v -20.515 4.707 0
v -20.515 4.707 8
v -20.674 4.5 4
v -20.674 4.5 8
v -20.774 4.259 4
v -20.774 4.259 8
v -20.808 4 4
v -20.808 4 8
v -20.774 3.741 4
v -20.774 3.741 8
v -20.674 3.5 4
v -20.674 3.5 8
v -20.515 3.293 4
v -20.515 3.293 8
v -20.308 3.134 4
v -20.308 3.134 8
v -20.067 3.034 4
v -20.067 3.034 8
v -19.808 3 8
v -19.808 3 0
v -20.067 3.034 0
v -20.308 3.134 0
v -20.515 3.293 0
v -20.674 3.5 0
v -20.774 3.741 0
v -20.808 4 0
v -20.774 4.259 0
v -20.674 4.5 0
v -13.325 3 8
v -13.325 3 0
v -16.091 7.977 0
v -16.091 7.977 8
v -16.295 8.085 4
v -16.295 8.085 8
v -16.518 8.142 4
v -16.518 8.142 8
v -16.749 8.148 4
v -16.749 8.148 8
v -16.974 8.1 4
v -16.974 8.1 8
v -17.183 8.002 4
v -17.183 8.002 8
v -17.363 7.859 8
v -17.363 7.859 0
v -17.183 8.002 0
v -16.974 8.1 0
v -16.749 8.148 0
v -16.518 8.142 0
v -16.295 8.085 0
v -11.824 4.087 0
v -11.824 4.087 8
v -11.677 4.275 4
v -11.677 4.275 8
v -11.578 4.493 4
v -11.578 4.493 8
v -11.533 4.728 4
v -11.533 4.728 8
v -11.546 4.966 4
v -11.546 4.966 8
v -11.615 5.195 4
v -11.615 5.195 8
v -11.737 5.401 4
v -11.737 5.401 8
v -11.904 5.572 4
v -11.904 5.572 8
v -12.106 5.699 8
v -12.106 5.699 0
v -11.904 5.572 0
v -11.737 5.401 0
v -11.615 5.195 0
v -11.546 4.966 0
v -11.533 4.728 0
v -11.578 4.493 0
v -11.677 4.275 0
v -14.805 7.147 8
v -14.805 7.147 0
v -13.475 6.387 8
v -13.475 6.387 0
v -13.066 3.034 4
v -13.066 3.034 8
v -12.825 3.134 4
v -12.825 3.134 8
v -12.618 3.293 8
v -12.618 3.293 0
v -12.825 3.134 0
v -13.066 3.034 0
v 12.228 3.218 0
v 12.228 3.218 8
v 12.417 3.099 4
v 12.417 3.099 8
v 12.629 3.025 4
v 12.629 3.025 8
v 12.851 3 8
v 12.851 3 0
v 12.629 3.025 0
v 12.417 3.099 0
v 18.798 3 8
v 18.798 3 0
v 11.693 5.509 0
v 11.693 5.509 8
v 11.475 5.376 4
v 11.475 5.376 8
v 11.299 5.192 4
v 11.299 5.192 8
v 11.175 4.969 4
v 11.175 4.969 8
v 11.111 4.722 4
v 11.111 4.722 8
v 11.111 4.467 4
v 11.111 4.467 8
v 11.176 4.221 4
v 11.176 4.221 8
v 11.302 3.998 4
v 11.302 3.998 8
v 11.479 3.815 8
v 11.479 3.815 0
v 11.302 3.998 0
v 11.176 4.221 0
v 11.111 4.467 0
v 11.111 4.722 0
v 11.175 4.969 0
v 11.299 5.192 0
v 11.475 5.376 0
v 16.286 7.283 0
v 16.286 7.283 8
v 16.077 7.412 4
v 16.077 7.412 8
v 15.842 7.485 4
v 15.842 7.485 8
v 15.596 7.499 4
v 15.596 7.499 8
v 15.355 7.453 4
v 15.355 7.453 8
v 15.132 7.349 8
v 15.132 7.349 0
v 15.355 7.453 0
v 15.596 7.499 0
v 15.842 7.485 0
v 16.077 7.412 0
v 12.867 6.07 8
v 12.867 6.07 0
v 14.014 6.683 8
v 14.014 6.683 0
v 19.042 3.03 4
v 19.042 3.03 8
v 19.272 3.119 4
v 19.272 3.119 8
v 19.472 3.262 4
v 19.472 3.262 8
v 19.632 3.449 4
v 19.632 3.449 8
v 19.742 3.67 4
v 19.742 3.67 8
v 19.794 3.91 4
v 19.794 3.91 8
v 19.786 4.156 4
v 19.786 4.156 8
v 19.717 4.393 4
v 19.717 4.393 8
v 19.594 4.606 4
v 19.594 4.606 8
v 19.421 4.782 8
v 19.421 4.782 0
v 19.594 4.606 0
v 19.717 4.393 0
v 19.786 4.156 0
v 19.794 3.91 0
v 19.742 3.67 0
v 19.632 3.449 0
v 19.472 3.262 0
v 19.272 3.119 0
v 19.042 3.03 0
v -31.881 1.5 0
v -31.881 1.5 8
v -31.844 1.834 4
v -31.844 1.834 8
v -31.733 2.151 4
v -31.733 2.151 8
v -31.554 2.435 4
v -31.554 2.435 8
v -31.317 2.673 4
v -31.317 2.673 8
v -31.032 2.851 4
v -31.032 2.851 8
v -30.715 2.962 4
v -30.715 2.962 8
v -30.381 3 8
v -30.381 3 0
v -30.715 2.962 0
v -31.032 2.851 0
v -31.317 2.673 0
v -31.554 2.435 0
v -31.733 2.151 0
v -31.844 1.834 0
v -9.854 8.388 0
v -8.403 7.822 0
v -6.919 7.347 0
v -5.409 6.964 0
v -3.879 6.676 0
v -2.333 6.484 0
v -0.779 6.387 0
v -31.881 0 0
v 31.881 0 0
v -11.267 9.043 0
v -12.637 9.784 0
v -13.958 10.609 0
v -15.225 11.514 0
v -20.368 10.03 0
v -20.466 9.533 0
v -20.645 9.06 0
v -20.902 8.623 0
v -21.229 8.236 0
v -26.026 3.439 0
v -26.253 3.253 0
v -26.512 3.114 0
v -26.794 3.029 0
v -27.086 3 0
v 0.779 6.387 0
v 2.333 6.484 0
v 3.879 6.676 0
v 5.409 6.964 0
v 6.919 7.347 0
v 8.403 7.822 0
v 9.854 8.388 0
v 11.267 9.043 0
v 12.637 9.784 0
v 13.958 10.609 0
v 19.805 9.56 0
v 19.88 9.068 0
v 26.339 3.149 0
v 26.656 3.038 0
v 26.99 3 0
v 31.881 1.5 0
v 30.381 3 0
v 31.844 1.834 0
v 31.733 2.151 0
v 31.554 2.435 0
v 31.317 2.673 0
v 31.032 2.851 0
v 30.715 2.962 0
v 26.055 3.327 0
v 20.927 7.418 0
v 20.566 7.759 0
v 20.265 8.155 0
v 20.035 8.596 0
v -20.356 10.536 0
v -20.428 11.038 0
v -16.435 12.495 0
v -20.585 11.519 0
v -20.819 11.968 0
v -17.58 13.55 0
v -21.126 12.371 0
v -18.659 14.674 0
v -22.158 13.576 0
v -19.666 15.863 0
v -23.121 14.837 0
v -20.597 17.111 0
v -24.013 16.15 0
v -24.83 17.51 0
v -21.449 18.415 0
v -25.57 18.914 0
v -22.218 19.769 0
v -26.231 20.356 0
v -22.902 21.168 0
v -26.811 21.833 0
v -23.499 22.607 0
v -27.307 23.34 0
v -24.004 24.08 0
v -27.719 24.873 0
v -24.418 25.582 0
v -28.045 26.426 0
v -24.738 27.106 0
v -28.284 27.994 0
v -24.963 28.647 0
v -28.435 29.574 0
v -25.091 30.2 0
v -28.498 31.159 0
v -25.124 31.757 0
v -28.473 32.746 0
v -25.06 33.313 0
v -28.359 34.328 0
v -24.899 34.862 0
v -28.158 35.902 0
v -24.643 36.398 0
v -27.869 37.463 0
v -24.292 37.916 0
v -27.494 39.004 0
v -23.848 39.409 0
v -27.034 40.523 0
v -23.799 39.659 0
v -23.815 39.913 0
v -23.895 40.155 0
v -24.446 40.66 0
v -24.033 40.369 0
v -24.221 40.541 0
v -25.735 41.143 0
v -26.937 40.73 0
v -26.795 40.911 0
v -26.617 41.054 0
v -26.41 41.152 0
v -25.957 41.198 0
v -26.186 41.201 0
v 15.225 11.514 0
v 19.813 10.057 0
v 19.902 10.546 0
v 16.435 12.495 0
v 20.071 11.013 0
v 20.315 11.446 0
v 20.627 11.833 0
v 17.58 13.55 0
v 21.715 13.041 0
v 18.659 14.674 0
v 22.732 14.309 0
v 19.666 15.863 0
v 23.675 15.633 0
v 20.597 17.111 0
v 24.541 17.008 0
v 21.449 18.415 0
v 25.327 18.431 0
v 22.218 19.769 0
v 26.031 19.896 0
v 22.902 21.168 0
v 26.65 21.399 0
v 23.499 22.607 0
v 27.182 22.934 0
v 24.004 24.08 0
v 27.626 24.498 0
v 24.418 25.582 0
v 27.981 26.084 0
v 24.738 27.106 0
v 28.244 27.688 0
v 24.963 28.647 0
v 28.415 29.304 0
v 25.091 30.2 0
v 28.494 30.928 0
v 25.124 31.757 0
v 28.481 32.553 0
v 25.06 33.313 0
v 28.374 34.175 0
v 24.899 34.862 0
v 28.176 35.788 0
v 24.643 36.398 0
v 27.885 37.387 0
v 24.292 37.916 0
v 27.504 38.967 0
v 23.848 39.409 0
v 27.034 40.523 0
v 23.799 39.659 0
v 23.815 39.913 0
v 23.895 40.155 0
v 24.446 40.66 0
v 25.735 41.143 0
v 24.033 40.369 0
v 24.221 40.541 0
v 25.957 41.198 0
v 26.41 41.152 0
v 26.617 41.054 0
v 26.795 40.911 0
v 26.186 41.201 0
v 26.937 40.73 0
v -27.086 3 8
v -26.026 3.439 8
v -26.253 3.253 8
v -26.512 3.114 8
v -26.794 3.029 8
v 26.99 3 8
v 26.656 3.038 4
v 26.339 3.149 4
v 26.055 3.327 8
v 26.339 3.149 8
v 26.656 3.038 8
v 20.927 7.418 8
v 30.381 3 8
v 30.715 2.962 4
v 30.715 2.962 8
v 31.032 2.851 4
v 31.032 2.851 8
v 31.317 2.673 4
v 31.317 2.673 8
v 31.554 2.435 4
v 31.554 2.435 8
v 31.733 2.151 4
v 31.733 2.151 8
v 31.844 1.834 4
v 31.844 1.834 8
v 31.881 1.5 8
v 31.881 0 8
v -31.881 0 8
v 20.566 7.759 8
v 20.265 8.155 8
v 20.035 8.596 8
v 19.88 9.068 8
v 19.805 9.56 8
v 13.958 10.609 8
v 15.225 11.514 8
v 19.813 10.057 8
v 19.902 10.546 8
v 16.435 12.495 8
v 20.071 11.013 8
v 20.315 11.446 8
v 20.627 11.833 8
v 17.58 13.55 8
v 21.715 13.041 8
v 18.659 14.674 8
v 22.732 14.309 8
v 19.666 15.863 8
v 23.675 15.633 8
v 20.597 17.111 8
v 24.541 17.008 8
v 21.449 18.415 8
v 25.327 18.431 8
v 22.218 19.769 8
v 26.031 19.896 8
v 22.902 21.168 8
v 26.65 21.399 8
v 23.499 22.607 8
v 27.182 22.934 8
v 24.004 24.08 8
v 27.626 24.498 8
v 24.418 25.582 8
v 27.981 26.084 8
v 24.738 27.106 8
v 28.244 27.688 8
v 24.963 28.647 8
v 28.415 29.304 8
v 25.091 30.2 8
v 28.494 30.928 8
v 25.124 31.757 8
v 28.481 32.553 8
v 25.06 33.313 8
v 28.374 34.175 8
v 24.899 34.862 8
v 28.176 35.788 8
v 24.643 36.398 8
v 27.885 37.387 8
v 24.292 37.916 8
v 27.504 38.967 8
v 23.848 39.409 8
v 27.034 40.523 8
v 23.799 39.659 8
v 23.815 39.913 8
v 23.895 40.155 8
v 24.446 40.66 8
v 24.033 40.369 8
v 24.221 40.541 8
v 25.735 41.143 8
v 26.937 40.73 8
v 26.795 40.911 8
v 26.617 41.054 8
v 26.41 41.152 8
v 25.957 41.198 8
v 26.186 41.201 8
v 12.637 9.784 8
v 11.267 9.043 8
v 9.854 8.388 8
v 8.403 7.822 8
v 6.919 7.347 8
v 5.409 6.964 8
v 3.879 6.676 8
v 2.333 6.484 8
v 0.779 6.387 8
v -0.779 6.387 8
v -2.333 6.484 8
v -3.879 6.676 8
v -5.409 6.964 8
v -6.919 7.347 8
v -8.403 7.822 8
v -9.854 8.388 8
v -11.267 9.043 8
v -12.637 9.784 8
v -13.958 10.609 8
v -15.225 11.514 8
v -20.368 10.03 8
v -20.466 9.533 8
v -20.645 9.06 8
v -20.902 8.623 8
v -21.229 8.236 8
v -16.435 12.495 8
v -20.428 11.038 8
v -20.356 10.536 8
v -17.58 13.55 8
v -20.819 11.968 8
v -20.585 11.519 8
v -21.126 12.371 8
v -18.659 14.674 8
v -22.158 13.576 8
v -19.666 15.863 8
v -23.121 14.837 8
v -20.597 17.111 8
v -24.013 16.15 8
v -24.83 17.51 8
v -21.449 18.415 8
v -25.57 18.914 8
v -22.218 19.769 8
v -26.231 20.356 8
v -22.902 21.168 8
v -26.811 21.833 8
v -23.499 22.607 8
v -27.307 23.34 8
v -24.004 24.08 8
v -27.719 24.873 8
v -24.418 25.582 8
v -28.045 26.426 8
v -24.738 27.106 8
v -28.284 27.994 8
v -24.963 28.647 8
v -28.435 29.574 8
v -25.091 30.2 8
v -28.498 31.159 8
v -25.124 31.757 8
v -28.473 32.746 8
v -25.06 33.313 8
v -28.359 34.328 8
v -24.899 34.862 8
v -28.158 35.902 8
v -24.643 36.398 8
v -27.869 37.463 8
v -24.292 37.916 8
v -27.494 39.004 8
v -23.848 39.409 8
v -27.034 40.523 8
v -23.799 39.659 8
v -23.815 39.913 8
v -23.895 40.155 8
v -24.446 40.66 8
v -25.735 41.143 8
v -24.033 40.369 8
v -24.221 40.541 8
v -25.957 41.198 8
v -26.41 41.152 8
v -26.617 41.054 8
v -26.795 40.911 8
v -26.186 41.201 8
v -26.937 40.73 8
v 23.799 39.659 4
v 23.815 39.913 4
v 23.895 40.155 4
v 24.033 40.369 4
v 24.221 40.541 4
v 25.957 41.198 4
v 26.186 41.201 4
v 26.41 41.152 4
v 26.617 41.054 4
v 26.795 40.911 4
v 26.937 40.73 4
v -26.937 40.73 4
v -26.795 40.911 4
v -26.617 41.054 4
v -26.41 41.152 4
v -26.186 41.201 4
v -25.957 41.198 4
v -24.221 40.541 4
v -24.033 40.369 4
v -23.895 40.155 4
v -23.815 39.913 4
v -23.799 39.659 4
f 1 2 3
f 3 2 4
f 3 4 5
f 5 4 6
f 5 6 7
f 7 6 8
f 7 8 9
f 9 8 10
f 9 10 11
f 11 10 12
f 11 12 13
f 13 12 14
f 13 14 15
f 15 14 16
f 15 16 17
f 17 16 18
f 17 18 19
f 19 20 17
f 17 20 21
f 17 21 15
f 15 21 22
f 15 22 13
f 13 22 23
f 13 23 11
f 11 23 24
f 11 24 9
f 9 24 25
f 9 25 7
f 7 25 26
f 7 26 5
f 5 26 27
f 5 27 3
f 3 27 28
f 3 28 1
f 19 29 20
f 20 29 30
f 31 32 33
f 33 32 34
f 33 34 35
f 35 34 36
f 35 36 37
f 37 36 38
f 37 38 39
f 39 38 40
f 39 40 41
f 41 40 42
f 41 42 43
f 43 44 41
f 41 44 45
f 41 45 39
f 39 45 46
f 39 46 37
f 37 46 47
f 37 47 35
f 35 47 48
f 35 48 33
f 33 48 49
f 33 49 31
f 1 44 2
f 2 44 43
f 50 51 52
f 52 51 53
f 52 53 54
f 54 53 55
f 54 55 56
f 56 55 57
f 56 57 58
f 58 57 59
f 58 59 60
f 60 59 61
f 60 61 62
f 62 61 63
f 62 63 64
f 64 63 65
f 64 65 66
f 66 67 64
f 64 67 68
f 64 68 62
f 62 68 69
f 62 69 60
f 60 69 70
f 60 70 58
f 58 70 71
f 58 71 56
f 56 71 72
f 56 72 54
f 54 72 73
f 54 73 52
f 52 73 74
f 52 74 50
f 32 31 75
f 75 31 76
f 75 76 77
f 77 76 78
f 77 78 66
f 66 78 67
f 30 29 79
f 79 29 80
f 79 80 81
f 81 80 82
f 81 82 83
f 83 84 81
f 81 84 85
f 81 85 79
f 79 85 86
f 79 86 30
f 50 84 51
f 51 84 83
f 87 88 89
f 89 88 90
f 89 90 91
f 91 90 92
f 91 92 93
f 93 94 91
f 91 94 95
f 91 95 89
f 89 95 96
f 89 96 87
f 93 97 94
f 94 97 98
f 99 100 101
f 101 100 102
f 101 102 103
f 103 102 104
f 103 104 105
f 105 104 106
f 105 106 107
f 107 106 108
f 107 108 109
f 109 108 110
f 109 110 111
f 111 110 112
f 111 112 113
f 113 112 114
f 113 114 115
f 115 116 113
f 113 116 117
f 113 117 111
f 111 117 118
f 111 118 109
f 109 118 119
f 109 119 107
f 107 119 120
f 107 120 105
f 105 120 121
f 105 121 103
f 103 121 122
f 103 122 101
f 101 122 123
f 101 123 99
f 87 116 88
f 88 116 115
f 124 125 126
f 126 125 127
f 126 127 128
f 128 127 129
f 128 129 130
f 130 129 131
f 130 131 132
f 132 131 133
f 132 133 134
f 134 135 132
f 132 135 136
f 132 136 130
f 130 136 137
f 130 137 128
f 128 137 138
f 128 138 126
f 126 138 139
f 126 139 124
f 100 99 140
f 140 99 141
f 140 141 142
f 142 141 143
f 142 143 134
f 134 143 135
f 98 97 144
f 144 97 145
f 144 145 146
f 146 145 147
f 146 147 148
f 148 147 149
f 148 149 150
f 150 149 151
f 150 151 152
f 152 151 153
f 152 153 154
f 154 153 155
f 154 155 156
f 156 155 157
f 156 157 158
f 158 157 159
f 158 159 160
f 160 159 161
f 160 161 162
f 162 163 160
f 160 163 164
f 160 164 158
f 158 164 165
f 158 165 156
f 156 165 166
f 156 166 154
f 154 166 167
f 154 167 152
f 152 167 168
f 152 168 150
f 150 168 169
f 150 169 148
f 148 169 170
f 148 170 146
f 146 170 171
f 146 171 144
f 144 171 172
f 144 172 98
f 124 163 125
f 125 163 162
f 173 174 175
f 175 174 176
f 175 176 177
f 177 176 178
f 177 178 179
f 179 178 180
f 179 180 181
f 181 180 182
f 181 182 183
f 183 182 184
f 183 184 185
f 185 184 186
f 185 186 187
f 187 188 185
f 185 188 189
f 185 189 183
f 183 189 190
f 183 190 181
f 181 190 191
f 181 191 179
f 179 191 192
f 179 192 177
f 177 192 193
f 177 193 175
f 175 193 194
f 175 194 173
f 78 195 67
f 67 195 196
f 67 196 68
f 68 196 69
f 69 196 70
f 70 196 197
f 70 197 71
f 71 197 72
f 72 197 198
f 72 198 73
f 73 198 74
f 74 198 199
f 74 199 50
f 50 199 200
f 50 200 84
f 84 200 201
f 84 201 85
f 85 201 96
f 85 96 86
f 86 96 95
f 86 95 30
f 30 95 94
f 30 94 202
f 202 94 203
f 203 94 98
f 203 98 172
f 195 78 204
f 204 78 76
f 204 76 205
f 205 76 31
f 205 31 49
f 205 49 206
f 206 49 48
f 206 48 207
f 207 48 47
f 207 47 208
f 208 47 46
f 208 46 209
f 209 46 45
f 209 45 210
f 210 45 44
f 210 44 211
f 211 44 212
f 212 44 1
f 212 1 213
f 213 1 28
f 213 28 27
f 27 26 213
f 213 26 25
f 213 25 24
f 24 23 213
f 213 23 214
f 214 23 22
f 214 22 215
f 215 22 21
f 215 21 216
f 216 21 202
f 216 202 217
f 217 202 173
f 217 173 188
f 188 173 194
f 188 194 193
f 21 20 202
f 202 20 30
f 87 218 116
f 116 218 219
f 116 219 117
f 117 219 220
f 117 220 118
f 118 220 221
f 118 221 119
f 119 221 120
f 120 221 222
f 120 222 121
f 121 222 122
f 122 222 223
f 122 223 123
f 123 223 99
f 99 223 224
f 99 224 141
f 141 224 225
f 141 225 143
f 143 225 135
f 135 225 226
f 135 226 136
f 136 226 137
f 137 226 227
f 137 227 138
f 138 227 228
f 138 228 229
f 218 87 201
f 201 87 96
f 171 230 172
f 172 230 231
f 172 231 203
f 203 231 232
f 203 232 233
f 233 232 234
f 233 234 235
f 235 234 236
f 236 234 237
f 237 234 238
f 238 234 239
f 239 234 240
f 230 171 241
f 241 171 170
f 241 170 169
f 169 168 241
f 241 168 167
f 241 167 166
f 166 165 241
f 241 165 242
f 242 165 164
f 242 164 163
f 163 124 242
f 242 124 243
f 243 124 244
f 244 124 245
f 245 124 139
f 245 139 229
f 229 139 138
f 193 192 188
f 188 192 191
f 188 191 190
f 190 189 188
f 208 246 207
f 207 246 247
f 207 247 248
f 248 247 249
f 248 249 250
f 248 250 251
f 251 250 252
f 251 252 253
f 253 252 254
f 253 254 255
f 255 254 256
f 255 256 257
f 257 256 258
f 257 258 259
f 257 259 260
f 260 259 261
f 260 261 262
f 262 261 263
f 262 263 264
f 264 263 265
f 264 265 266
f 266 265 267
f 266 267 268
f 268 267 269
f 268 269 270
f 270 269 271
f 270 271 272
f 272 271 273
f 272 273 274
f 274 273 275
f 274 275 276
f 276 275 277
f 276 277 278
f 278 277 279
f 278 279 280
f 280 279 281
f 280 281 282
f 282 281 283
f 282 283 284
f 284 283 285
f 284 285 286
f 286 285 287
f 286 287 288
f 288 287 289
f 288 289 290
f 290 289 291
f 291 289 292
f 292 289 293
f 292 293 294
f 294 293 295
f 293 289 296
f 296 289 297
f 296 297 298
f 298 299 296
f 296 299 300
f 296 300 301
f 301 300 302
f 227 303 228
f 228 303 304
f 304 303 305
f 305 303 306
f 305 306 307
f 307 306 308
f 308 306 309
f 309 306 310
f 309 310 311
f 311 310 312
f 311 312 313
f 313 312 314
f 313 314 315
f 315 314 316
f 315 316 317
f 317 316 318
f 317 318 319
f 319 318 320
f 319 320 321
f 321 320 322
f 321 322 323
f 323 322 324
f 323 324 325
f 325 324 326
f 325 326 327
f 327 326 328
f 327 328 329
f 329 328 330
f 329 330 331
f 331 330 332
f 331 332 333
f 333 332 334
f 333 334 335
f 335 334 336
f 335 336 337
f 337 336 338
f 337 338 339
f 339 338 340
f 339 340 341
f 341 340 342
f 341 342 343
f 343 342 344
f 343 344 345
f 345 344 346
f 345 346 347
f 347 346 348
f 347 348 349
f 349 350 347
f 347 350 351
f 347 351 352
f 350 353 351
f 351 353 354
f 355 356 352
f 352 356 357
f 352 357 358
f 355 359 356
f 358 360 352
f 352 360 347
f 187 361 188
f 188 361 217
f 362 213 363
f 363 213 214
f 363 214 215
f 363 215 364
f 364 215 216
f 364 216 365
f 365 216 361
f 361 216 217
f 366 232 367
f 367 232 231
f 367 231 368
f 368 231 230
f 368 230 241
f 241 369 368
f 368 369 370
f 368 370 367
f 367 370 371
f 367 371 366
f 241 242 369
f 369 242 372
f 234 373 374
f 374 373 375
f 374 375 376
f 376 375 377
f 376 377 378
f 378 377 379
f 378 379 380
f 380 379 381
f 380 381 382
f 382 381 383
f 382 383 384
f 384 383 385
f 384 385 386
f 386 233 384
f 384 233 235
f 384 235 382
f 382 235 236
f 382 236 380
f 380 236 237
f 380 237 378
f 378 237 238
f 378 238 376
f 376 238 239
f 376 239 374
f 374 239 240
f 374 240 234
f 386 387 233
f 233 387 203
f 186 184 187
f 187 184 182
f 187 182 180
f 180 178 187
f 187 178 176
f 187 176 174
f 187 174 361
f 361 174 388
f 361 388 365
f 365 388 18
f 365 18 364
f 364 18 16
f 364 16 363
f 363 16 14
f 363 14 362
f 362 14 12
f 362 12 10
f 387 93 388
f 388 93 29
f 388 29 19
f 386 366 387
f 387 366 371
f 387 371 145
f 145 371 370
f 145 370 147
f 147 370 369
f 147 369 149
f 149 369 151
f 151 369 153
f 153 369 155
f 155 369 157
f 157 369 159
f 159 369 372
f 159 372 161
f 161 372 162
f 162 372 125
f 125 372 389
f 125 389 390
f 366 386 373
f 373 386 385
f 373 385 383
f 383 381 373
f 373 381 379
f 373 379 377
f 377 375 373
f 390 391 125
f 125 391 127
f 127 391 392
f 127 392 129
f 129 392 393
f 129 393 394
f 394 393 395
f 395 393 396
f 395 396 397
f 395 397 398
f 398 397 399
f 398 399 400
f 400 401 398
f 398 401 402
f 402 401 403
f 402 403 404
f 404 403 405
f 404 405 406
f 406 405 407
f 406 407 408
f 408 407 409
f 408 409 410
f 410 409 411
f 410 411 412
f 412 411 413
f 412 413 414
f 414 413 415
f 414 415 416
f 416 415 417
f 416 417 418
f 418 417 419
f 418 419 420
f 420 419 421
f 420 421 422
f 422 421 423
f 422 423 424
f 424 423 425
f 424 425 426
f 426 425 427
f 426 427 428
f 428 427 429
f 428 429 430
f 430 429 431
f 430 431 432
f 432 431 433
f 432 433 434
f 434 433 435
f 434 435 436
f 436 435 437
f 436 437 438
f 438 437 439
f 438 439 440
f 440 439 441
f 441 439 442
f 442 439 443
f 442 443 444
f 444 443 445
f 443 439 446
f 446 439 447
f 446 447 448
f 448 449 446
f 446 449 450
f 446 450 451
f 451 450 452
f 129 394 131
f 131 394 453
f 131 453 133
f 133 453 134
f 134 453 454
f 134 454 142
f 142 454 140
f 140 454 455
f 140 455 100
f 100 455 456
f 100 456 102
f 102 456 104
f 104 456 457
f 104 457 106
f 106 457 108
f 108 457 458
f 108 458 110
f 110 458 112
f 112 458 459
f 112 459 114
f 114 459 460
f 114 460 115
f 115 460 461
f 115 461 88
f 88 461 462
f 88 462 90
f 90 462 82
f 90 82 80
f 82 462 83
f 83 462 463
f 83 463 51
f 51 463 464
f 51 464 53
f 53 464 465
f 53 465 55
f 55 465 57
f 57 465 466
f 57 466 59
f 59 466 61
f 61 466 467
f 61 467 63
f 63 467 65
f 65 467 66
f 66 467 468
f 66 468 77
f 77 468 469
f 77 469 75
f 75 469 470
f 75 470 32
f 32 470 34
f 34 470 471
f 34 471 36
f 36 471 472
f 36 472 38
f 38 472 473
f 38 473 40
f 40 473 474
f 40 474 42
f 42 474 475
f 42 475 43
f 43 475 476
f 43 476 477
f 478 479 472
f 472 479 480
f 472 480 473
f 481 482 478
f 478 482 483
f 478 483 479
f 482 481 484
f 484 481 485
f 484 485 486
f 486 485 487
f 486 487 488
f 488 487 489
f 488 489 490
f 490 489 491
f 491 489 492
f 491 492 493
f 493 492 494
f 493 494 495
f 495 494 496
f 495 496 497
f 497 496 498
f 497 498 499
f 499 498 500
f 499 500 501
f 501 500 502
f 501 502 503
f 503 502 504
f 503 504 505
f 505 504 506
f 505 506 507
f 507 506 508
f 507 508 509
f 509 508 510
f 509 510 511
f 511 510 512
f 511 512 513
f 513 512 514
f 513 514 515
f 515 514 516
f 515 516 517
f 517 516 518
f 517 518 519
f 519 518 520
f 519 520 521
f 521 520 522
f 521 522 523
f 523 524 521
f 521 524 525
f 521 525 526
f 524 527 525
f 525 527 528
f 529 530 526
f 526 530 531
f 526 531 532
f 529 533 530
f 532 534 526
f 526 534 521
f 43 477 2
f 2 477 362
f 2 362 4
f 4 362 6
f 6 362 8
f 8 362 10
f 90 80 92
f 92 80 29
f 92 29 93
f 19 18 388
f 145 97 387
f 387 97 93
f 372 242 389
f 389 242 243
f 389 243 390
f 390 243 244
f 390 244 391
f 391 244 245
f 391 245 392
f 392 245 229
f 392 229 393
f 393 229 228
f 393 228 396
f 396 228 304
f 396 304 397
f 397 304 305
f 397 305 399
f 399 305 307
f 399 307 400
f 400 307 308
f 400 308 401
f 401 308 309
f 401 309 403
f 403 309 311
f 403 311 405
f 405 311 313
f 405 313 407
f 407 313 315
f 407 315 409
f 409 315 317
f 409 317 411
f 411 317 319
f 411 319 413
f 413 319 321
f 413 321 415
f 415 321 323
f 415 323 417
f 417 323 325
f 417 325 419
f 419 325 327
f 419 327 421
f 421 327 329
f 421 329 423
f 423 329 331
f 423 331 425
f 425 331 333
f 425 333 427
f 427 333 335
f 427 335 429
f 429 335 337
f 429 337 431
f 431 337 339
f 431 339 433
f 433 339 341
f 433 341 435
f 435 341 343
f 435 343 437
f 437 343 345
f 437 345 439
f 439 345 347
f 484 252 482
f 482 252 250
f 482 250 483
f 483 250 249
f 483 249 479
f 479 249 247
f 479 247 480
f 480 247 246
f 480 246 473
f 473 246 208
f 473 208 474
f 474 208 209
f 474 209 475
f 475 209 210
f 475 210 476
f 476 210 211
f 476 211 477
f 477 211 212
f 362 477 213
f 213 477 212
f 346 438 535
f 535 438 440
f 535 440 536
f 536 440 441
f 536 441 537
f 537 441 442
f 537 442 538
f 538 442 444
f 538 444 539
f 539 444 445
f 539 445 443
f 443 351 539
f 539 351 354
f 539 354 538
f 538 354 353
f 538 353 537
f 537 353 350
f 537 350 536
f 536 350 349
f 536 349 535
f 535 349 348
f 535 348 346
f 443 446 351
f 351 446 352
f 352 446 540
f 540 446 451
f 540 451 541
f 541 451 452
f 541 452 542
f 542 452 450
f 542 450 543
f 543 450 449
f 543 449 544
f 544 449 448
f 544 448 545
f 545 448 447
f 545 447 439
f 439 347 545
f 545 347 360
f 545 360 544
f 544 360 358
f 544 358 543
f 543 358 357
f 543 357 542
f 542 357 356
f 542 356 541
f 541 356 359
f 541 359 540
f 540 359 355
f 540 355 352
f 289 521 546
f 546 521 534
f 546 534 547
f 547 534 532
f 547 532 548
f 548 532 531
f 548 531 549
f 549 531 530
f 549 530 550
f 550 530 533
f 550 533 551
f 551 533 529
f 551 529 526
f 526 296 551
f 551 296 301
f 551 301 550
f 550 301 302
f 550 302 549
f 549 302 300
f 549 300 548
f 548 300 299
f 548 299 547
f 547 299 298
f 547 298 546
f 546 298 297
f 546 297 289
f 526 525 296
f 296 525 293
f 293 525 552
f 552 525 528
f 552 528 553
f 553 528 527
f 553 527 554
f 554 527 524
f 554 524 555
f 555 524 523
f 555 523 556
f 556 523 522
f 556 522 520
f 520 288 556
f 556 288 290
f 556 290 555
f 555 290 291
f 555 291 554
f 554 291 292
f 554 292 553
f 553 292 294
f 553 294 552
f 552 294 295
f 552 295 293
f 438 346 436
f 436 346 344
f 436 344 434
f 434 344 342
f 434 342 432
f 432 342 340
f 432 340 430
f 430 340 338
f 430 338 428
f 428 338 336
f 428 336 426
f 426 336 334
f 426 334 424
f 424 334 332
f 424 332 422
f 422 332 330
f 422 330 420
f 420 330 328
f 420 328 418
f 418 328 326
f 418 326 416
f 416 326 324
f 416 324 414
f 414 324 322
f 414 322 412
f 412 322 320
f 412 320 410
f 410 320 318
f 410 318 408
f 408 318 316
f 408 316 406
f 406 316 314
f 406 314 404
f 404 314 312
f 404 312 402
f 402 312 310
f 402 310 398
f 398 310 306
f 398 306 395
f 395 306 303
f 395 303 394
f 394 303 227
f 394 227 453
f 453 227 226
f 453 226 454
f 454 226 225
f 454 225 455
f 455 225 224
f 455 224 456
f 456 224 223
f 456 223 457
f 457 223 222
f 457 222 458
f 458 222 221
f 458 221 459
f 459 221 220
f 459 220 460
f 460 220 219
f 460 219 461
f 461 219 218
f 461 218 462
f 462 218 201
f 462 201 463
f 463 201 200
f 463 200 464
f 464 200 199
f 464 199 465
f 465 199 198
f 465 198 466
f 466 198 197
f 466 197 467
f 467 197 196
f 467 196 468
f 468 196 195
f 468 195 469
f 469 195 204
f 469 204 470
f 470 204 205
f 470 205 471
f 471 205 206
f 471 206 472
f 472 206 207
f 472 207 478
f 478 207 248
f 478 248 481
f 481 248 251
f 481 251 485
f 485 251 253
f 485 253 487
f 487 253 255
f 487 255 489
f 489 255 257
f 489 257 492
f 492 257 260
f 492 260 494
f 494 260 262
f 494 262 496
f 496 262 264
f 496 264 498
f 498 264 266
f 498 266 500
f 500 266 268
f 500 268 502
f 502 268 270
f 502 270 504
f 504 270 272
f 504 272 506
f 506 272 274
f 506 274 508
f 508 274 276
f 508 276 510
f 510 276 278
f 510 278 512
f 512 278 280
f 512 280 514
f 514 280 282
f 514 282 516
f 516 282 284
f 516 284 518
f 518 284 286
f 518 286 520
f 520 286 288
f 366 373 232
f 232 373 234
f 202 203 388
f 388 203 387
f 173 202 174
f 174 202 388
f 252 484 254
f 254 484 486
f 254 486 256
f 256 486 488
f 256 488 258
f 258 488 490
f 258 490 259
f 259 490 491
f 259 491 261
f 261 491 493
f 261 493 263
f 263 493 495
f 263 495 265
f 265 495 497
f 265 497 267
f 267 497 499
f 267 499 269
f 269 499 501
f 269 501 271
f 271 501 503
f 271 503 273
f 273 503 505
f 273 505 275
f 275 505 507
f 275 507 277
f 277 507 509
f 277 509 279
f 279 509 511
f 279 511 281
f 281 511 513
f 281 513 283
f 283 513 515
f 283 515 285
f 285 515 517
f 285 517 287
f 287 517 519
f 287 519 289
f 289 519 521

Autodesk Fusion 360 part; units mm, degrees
sketch "Skizze1" plane through (0, 0, 0) normal (0, 0, 1) x (1, 0, 0)
  line L0 (0, 80) -> (0, -42.0959) construction
  line L1 (-31.8813, 0) -> (31.8813, 0)
  line L2 (31.8813, 0) -> (31.8813, 3)
  line L3 (-31.8813, 3) -> (-31.8813, 0)
  line L4 (-26.4649, 3) -> (-19.1093, 10.3556)
  line L5 (26.4649, 3) -> (18.216, 9.5813)
  line L6 (-42, 31.5) -> (42, 31.5) construction
  arc A0 (-23.5276, 40.3158) -> (23.5276, 40.3158) centre (0, 31.5) ccw
  line L7 (23.5276, 40.3158) -> (26.688, 41.5)
  line L8 (-23.5276, 40.3158) -> (-26.688, 41.5)
  arc A1 (18.216, 9.5813) -> (26.688, 41.5) centre (0, 31.5) ccw
  arc A2 (-26.688, 41.5) -> (-19.1093, 10.3556) centre (0, 31.5) ccw
  line L9 (-23.5276, 40.3158) -> (0, 31.5) construction
  line L10 (0, 31.5) -> (23.5276, 40.3158) construction
  line L11 (31.8813, 3) -> (26.4649, 3)
  line L12 (-26.4649, 3) -> (-31.8813, 3)
  arc A3 (-19.1093, 10.3556) -> (18.216, 9.5813) centre (0, 31.5) ccw
  line L13 (-26.4649, 3) -> (26.4649, 3)
  dimension "d1" = 50.25
  dimension "d2" = 3
  dimension "d4" = 31.5
  dimension "d5" = 135
  dimension "d6" = 10
extrude "Extrusion1" add sketch "Skizze1" along normal blind 8
fillet "Abrundung1" radius 1 4 edges at (-23.5276, 40.3158, 4) (-26.688, 41.5, 4) (26.688, 41.5, 4) (23.5276, 40.3158, 4)
sketch "Skizze2" plane through (0, 0, 8) normal (0, 0, 1) x (-1, 0, 0)
  arc A0 (-24.4461, -40.6599) -> (-23.8478, -39.4088) centre (-24.797, -39.7235) ccw
  arc A1 (23.8478, -39.4088) -> (-23.8478, -39.4088) centre (0, -31.5) ccw
  arc A2 (23.8478, -39.4088) -> (24.4461, -40.6599) centre (24.797, -39.7235) ccw
  line L0 (24.4461, -40.6599) -> (25.7346, -41.1427)
  arc A3 (25.7346, -41.1427) -> (27.034, -40.5229) centre (26.0854, -40.2063) ccw
  arc A4 (27.034, -40.5229) -> (19.1093, -10.3556) centre (0, -31.5) ccw
  line L1 (19.1093, -10.3556) -> (26.4649, -3)
  line L2 (26.4649, -3) -> (31.8813, -3)
  line L3 (31.8813, -3) -> (31.8813, 0)
  line L4 (31.8813, 0) -> (-31.8813, 0)
  line L5 (-31.8813, 0) -> (-31.8813, -3)
  line L6 (-31.8813, -3) -> (-26.4649, -3)
  line L7 (-26.4649, -3) -> (-18.216, -9.5813)
  arc A5 (-18.216, -9.5813) -> (-27.034, -40.5229) centre (0, -31.5) ccw
  arc A6 (-27.034, -40.5229) -> (-25.7346, -41.1427) centre (-26.0854, -40.2063) ccw
  line L8 (-25.7346, -41.1427) -> (-24.4461, -40.6599)
  arc A7 (23.8478, -39.4088) -> (-23.8478, -39.4088) centre (0, -31.5) ccw
  arc A8 (27.034, -40.5229) -> (19.1093, -10.3556) centre (0, -31.5) ccw
  arc A9 (-18.216, -9.5813) -> (-27.034, -40.5229) centre (0, -31.5) ccw
  line L9 (31.8813, 0) -> (-31.8813, 0)
  circle A10 centre (0, -31.5) radius 28.5
  line L10 (16.7677, -8.4546) -> (22.2223, -3)
  line L11 (-15.725, -7.7308) -> (-21.6546, -3)
  line L12 (22.2223, -3) -> (-26.4649, -3)
  line L13 (12.9109, -3) -> (10.7896, -5.1213)
  line L14 (-12.5011, -3) -> (-10.1561, -4.871)
  dimension "d13" = 3
  dimension "d14" = 3
  dimension "d15" = 3
  dimension "d16" = 3
extrude "Extrusion2" cut sketch "Skizze2" against normal up to surface (8 mm away) contours A10 L11 L12 L14 | A10 L10 L12 L13
fillet "Abrundung2" radius 3 2 edges at (-19.1093, 10.3556, 4) (18.216, 9.5813, 4)
fillet "Abrundung3" radius 1.5 4 edges at (31.8813, 3, 4) (26.4649, 3, 4) (-26.4649, 3, 4) (-31.8813, 3, 4)
fillet "Abrundung4" radius 1 4 edges at (21.6546, 3, 4) (15.725, 7.7308, 4) (10.1561, 4.871, 4) (12.5011, 3, 4)
fillet "Abrundung5" radius 1 4 edges at (-12.9109, 3, 4) (-10.7896, 5.1213, 4) (-16.7677, 8.4546, 4) (-22.2223, 3, 4)
sketch "Skizze3" plane through (0, 0, 0) normal (0, -1, 0) x (1, 0, 0)
  line L0 (-31.8813, 0) -> (31.8813, 0)
  line L1 (31.8813, 0) -> (31.8813, 8)
  line L2 (31.8813, 8) -> (-31.8813, 8)
  line L3 (-31.8813, 8) -> (-31.8813, 0)
equation "d4 = ( 63 / 2 ) * 1 mm"
